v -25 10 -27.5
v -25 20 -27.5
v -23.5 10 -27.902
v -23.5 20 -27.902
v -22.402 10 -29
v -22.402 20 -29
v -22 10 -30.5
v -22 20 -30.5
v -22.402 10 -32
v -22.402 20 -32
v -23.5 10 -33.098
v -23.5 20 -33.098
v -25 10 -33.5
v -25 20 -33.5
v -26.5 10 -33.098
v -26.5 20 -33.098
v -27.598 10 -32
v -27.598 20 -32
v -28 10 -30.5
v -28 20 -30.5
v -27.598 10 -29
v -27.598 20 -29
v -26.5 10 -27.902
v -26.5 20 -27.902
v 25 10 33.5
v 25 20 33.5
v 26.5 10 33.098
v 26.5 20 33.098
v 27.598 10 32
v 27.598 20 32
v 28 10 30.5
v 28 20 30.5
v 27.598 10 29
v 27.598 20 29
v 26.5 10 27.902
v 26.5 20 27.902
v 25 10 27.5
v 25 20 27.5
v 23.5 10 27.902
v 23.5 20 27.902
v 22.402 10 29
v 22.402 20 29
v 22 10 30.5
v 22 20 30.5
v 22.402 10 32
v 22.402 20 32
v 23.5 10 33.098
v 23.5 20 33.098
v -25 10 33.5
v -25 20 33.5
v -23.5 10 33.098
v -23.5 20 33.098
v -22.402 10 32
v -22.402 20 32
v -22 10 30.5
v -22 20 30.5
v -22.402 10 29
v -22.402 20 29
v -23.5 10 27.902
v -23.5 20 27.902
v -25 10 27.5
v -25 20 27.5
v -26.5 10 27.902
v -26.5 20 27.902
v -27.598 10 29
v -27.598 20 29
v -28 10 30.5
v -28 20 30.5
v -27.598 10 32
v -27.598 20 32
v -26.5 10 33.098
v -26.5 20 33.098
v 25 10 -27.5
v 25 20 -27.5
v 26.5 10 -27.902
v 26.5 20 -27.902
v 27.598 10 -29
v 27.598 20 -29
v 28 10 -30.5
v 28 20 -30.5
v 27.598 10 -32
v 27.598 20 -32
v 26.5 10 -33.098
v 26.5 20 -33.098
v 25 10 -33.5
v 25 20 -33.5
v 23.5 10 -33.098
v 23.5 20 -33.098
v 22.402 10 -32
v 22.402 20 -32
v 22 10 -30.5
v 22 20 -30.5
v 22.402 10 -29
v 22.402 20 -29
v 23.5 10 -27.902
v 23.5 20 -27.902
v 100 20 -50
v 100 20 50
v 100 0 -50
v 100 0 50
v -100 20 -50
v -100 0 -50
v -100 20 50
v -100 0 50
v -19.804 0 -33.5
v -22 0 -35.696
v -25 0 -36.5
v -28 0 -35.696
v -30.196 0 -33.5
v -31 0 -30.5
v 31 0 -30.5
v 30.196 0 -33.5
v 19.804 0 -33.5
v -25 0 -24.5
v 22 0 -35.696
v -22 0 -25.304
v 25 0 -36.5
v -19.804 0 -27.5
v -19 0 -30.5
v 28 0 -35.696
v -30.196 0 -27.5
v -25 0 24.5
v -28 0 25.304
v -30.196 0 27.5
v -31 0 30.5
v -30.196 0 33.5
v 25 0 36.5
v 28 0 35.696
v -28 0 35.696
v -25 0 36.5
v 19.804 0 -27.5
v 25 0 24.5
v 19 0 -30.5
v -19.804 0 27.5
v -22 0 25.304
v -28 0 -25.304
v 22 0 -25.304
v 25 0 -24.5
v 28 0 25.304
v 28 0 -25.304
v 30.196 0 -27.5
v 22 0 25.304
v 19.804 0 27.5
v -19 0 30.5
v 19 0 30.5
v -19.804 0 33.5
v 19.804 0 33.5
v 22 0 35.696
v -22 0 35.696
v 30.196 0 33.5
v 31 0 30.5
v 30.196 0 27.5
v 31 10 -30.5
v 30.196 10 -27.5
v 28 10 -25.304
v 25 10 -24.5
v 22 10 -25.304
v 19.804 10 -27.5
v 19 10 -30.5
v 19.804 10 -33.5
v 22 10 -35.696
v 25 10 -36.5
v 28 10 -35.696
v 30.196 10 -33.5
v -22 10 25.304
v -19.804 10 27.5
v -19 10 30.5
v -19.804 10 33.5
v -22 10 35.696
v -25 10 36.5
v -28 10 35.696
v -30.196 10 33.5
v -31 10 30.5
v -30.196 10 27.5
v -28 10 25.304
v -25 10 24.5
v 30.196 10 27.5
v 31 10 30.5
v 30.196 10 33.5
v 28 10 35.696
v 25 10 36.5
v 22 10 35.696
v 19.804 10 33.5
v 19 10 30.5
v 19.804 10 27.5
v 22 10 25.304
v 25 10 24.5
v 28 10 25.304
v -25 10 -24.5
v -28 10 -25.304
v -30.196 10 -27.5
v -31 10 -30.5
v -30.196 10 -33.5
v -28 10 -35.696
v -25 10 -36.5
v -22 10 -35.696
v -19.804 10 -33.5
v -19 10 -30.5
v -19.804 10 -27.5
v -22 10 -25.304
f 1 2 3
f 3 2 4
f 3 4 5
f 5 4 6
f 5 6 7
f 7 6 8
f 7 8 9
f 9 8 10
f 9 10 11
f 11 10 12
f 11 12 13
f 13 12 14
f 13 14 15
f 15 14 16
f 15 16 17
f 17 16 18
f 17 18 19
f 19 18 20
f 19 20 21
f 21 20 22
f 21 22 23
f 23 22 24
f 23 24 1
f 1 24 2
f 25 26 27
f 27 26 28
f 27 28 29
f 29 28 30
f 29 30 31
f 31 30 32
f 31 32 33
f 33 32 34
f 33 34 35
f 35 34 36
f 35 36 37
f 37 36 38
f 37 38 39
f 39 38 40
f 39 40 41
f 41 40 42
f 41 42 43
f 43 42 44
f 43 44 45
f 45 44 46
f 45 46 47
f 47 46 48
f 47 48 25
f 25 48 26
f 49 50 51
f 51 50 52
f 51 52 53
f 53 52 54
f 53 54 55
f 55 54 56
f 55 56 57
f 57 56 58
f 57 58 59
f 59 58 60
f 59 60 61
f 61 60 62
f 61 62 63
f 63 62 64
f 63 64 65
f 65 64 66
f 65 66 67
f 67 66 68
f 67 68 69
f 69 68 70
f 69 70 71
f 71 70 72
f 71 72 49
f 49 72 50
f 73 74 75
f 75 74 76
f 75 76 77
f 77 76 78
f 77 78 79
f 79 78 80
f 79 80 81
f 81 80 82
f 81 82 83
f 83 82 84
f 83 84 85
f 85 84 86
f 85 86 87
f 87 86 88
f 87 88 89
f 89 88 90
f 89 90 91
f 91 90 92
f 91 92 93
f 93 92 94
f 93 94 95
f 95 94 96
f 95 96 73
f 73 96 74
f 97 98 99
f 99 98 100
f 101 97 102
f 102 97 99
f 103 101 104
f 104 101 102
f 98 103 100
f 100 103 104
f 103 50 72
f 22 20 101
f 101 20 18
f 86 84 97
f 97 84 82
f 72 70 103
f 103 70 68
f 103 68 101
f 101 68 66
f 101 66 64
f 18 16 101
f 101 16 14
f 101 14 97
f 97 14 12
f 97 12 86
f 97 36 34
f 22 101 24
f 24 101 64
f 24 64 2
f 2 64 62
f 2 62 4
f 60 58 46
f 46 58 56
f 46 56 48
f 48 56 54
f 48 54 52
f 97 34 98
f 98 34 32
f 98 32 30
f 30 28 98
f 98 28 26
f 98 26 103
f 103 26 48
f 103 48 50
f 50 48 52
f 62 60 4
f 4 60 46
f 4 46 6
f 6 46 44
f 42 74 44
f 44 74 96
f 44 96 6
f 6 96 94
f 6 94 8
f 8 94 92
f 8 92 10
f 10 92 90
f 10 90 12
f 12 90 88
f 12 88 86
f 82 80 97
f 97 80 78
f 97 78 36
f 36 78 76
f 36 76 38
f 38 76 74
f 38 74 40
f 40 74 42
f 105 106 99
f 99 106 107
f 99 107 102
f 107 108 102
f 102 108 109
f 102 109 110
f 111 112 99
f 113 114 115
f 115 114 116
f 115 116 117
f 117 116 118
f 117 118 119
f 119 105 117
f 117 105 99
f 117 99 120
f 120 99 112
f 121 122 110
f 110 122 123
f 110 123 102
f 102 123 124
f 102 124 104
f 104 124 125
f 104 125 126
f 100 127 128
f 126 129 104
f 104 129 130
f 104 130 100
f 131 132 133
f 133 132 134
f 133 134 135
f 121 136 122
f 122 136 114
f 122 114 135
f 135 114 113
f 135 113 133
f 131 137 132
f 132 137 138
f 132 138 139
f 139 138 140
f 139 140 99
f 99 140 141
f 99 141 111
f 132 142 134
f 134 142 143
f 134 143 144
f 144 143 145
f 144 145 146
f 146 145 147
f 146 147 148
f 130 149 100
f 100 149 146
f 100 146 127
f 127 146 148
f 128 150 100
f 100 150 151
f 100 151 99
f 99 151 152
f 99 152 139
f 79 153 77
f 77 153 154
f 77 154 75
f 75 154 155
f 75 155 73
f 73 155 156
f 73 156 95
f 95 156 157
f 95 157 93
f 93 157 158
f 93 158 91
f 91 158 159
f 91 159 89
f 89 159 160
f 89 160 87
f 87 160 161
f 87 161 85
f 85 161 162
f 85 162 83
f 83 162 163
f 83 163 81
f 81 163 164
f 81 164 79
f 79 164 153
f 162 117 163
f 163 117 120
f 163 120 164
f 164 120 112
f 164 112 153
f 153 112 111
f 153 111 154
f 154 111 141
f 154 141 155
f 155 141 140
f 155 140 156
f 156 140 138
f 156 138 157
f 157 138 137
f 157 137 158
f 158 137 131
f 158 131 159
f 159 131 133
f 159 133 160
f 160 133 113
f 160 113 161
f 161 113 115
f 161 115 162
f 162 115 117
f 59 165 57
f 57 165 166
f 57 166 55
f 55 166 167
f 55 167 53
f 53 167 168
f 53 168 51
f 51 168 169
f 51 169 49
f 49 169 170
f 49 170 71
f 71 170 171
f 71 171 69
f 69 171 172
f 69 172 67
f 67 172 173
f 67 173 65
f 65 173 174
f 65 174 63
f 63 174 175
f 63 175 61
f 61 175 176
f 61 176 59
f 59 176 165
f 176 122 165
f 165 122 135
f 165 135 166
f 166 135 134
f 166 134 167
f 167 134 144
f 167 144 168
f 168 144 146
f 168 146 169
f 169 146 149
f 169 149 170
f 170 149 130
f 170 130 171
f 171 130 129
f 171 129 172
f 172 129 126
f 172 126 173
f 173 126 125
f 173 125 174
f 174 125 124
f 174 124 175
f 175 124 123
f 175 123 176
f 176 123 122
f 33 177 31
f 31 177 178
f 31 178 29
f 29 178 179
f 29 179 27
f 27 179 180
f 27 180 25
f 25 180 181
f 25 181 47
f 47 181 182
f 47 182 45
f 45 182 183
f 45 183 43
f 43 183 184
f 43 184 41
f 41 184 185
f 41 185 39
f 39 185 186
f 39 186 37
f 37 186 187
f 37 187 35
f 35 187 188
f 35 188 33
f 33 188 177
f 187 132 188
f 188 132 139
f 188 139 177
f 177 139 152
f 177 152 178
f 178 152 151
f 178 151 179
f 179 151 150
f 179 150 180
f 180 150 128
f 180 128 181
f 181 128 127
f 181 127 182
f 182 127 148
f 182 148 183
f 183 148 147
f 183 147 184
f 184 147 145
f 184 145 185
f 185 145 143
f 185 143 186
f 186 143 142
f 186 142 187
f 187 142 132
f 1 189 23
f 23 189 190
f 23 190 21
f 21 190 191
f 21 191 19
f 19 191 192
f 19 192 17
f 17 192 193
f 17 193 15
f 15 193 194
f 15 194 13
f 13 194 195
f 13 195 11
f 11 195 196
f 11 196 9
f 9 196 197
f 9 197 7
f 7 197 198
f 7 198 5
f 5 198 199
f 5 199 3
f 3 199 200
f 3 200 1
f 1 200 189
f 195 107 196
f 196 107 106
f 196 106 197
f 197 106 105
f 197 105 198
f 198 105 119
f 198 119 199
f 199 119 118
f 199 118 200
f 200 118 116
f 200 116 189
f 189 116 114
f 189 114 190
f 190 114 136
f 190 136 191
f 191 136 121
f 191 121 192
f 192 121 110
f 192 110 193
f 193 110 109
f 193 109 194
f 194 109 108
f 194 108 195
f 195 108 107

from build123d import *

# Parameters (mm, degrees)
SKETCH1_W           = 200
SKETCH1_H           = 100
BOSS_EXTRUDE1_DEPTH = 20
SKETCH2_R           = 3
CUT_EXTRUDE1_DEPTH  = 20
SKETCH3_R           = 6
CUT_EXTRUDE2_DEPTH  = 10


with BuildPart() as part:
    # Sketch1 → Boss-Extrude1 (new body)
    with BuildSketch(Plane(origin=(0, 0, 0), x_dir=(1, 0, 0), z_dir=(0, 1, 0))):
        Rectangle(SKETCH1_W, SKETCH1_H)
    extrude(amount=BOSS_EXTRUDE1_DEPTH)

    # Sketch2 → Cut-Extrude1 (cut)
    with BuildSketch(Plane(origin=(0, 20, 0), x_dir=(1, 0, 0), z_dir=(0, 1, 0))):
        with Locations((-25, 30.5)):
            Circle(SKETCH2_R)
        with Locations((25, -30.5)):
            Circle(SKETCH2_R)
        with Locations((-25, -30.5)):
            Circle(SKETCH2_R)
        with Locations((25, 30.5)):
            Circle(SKETCH2_R)
    extrude(amount=-CUT_EXTRUDE1_DEPTH, mode=Mode.SUBTRACT)

    # Sketch3 → Cut-Extrude2 (cut)
    with BuildSketch(Plane.XZ):
        with Locations((25, -30.5)):
            Circle(SKETCH3_R)
        with Locations((-25, -30.5)):
            Circle(SKETCH3_R)
        with Locations((25, 30.5)):
            Circle(SKETCH3_R)
        with Locations((-25, 30.5)):
            Circle(SKETCH3_R)
    extrude(amount=-CUT_EXTRUDE2_DEPTH, mode=Mode.SUBTRACT)


solid = part.part
